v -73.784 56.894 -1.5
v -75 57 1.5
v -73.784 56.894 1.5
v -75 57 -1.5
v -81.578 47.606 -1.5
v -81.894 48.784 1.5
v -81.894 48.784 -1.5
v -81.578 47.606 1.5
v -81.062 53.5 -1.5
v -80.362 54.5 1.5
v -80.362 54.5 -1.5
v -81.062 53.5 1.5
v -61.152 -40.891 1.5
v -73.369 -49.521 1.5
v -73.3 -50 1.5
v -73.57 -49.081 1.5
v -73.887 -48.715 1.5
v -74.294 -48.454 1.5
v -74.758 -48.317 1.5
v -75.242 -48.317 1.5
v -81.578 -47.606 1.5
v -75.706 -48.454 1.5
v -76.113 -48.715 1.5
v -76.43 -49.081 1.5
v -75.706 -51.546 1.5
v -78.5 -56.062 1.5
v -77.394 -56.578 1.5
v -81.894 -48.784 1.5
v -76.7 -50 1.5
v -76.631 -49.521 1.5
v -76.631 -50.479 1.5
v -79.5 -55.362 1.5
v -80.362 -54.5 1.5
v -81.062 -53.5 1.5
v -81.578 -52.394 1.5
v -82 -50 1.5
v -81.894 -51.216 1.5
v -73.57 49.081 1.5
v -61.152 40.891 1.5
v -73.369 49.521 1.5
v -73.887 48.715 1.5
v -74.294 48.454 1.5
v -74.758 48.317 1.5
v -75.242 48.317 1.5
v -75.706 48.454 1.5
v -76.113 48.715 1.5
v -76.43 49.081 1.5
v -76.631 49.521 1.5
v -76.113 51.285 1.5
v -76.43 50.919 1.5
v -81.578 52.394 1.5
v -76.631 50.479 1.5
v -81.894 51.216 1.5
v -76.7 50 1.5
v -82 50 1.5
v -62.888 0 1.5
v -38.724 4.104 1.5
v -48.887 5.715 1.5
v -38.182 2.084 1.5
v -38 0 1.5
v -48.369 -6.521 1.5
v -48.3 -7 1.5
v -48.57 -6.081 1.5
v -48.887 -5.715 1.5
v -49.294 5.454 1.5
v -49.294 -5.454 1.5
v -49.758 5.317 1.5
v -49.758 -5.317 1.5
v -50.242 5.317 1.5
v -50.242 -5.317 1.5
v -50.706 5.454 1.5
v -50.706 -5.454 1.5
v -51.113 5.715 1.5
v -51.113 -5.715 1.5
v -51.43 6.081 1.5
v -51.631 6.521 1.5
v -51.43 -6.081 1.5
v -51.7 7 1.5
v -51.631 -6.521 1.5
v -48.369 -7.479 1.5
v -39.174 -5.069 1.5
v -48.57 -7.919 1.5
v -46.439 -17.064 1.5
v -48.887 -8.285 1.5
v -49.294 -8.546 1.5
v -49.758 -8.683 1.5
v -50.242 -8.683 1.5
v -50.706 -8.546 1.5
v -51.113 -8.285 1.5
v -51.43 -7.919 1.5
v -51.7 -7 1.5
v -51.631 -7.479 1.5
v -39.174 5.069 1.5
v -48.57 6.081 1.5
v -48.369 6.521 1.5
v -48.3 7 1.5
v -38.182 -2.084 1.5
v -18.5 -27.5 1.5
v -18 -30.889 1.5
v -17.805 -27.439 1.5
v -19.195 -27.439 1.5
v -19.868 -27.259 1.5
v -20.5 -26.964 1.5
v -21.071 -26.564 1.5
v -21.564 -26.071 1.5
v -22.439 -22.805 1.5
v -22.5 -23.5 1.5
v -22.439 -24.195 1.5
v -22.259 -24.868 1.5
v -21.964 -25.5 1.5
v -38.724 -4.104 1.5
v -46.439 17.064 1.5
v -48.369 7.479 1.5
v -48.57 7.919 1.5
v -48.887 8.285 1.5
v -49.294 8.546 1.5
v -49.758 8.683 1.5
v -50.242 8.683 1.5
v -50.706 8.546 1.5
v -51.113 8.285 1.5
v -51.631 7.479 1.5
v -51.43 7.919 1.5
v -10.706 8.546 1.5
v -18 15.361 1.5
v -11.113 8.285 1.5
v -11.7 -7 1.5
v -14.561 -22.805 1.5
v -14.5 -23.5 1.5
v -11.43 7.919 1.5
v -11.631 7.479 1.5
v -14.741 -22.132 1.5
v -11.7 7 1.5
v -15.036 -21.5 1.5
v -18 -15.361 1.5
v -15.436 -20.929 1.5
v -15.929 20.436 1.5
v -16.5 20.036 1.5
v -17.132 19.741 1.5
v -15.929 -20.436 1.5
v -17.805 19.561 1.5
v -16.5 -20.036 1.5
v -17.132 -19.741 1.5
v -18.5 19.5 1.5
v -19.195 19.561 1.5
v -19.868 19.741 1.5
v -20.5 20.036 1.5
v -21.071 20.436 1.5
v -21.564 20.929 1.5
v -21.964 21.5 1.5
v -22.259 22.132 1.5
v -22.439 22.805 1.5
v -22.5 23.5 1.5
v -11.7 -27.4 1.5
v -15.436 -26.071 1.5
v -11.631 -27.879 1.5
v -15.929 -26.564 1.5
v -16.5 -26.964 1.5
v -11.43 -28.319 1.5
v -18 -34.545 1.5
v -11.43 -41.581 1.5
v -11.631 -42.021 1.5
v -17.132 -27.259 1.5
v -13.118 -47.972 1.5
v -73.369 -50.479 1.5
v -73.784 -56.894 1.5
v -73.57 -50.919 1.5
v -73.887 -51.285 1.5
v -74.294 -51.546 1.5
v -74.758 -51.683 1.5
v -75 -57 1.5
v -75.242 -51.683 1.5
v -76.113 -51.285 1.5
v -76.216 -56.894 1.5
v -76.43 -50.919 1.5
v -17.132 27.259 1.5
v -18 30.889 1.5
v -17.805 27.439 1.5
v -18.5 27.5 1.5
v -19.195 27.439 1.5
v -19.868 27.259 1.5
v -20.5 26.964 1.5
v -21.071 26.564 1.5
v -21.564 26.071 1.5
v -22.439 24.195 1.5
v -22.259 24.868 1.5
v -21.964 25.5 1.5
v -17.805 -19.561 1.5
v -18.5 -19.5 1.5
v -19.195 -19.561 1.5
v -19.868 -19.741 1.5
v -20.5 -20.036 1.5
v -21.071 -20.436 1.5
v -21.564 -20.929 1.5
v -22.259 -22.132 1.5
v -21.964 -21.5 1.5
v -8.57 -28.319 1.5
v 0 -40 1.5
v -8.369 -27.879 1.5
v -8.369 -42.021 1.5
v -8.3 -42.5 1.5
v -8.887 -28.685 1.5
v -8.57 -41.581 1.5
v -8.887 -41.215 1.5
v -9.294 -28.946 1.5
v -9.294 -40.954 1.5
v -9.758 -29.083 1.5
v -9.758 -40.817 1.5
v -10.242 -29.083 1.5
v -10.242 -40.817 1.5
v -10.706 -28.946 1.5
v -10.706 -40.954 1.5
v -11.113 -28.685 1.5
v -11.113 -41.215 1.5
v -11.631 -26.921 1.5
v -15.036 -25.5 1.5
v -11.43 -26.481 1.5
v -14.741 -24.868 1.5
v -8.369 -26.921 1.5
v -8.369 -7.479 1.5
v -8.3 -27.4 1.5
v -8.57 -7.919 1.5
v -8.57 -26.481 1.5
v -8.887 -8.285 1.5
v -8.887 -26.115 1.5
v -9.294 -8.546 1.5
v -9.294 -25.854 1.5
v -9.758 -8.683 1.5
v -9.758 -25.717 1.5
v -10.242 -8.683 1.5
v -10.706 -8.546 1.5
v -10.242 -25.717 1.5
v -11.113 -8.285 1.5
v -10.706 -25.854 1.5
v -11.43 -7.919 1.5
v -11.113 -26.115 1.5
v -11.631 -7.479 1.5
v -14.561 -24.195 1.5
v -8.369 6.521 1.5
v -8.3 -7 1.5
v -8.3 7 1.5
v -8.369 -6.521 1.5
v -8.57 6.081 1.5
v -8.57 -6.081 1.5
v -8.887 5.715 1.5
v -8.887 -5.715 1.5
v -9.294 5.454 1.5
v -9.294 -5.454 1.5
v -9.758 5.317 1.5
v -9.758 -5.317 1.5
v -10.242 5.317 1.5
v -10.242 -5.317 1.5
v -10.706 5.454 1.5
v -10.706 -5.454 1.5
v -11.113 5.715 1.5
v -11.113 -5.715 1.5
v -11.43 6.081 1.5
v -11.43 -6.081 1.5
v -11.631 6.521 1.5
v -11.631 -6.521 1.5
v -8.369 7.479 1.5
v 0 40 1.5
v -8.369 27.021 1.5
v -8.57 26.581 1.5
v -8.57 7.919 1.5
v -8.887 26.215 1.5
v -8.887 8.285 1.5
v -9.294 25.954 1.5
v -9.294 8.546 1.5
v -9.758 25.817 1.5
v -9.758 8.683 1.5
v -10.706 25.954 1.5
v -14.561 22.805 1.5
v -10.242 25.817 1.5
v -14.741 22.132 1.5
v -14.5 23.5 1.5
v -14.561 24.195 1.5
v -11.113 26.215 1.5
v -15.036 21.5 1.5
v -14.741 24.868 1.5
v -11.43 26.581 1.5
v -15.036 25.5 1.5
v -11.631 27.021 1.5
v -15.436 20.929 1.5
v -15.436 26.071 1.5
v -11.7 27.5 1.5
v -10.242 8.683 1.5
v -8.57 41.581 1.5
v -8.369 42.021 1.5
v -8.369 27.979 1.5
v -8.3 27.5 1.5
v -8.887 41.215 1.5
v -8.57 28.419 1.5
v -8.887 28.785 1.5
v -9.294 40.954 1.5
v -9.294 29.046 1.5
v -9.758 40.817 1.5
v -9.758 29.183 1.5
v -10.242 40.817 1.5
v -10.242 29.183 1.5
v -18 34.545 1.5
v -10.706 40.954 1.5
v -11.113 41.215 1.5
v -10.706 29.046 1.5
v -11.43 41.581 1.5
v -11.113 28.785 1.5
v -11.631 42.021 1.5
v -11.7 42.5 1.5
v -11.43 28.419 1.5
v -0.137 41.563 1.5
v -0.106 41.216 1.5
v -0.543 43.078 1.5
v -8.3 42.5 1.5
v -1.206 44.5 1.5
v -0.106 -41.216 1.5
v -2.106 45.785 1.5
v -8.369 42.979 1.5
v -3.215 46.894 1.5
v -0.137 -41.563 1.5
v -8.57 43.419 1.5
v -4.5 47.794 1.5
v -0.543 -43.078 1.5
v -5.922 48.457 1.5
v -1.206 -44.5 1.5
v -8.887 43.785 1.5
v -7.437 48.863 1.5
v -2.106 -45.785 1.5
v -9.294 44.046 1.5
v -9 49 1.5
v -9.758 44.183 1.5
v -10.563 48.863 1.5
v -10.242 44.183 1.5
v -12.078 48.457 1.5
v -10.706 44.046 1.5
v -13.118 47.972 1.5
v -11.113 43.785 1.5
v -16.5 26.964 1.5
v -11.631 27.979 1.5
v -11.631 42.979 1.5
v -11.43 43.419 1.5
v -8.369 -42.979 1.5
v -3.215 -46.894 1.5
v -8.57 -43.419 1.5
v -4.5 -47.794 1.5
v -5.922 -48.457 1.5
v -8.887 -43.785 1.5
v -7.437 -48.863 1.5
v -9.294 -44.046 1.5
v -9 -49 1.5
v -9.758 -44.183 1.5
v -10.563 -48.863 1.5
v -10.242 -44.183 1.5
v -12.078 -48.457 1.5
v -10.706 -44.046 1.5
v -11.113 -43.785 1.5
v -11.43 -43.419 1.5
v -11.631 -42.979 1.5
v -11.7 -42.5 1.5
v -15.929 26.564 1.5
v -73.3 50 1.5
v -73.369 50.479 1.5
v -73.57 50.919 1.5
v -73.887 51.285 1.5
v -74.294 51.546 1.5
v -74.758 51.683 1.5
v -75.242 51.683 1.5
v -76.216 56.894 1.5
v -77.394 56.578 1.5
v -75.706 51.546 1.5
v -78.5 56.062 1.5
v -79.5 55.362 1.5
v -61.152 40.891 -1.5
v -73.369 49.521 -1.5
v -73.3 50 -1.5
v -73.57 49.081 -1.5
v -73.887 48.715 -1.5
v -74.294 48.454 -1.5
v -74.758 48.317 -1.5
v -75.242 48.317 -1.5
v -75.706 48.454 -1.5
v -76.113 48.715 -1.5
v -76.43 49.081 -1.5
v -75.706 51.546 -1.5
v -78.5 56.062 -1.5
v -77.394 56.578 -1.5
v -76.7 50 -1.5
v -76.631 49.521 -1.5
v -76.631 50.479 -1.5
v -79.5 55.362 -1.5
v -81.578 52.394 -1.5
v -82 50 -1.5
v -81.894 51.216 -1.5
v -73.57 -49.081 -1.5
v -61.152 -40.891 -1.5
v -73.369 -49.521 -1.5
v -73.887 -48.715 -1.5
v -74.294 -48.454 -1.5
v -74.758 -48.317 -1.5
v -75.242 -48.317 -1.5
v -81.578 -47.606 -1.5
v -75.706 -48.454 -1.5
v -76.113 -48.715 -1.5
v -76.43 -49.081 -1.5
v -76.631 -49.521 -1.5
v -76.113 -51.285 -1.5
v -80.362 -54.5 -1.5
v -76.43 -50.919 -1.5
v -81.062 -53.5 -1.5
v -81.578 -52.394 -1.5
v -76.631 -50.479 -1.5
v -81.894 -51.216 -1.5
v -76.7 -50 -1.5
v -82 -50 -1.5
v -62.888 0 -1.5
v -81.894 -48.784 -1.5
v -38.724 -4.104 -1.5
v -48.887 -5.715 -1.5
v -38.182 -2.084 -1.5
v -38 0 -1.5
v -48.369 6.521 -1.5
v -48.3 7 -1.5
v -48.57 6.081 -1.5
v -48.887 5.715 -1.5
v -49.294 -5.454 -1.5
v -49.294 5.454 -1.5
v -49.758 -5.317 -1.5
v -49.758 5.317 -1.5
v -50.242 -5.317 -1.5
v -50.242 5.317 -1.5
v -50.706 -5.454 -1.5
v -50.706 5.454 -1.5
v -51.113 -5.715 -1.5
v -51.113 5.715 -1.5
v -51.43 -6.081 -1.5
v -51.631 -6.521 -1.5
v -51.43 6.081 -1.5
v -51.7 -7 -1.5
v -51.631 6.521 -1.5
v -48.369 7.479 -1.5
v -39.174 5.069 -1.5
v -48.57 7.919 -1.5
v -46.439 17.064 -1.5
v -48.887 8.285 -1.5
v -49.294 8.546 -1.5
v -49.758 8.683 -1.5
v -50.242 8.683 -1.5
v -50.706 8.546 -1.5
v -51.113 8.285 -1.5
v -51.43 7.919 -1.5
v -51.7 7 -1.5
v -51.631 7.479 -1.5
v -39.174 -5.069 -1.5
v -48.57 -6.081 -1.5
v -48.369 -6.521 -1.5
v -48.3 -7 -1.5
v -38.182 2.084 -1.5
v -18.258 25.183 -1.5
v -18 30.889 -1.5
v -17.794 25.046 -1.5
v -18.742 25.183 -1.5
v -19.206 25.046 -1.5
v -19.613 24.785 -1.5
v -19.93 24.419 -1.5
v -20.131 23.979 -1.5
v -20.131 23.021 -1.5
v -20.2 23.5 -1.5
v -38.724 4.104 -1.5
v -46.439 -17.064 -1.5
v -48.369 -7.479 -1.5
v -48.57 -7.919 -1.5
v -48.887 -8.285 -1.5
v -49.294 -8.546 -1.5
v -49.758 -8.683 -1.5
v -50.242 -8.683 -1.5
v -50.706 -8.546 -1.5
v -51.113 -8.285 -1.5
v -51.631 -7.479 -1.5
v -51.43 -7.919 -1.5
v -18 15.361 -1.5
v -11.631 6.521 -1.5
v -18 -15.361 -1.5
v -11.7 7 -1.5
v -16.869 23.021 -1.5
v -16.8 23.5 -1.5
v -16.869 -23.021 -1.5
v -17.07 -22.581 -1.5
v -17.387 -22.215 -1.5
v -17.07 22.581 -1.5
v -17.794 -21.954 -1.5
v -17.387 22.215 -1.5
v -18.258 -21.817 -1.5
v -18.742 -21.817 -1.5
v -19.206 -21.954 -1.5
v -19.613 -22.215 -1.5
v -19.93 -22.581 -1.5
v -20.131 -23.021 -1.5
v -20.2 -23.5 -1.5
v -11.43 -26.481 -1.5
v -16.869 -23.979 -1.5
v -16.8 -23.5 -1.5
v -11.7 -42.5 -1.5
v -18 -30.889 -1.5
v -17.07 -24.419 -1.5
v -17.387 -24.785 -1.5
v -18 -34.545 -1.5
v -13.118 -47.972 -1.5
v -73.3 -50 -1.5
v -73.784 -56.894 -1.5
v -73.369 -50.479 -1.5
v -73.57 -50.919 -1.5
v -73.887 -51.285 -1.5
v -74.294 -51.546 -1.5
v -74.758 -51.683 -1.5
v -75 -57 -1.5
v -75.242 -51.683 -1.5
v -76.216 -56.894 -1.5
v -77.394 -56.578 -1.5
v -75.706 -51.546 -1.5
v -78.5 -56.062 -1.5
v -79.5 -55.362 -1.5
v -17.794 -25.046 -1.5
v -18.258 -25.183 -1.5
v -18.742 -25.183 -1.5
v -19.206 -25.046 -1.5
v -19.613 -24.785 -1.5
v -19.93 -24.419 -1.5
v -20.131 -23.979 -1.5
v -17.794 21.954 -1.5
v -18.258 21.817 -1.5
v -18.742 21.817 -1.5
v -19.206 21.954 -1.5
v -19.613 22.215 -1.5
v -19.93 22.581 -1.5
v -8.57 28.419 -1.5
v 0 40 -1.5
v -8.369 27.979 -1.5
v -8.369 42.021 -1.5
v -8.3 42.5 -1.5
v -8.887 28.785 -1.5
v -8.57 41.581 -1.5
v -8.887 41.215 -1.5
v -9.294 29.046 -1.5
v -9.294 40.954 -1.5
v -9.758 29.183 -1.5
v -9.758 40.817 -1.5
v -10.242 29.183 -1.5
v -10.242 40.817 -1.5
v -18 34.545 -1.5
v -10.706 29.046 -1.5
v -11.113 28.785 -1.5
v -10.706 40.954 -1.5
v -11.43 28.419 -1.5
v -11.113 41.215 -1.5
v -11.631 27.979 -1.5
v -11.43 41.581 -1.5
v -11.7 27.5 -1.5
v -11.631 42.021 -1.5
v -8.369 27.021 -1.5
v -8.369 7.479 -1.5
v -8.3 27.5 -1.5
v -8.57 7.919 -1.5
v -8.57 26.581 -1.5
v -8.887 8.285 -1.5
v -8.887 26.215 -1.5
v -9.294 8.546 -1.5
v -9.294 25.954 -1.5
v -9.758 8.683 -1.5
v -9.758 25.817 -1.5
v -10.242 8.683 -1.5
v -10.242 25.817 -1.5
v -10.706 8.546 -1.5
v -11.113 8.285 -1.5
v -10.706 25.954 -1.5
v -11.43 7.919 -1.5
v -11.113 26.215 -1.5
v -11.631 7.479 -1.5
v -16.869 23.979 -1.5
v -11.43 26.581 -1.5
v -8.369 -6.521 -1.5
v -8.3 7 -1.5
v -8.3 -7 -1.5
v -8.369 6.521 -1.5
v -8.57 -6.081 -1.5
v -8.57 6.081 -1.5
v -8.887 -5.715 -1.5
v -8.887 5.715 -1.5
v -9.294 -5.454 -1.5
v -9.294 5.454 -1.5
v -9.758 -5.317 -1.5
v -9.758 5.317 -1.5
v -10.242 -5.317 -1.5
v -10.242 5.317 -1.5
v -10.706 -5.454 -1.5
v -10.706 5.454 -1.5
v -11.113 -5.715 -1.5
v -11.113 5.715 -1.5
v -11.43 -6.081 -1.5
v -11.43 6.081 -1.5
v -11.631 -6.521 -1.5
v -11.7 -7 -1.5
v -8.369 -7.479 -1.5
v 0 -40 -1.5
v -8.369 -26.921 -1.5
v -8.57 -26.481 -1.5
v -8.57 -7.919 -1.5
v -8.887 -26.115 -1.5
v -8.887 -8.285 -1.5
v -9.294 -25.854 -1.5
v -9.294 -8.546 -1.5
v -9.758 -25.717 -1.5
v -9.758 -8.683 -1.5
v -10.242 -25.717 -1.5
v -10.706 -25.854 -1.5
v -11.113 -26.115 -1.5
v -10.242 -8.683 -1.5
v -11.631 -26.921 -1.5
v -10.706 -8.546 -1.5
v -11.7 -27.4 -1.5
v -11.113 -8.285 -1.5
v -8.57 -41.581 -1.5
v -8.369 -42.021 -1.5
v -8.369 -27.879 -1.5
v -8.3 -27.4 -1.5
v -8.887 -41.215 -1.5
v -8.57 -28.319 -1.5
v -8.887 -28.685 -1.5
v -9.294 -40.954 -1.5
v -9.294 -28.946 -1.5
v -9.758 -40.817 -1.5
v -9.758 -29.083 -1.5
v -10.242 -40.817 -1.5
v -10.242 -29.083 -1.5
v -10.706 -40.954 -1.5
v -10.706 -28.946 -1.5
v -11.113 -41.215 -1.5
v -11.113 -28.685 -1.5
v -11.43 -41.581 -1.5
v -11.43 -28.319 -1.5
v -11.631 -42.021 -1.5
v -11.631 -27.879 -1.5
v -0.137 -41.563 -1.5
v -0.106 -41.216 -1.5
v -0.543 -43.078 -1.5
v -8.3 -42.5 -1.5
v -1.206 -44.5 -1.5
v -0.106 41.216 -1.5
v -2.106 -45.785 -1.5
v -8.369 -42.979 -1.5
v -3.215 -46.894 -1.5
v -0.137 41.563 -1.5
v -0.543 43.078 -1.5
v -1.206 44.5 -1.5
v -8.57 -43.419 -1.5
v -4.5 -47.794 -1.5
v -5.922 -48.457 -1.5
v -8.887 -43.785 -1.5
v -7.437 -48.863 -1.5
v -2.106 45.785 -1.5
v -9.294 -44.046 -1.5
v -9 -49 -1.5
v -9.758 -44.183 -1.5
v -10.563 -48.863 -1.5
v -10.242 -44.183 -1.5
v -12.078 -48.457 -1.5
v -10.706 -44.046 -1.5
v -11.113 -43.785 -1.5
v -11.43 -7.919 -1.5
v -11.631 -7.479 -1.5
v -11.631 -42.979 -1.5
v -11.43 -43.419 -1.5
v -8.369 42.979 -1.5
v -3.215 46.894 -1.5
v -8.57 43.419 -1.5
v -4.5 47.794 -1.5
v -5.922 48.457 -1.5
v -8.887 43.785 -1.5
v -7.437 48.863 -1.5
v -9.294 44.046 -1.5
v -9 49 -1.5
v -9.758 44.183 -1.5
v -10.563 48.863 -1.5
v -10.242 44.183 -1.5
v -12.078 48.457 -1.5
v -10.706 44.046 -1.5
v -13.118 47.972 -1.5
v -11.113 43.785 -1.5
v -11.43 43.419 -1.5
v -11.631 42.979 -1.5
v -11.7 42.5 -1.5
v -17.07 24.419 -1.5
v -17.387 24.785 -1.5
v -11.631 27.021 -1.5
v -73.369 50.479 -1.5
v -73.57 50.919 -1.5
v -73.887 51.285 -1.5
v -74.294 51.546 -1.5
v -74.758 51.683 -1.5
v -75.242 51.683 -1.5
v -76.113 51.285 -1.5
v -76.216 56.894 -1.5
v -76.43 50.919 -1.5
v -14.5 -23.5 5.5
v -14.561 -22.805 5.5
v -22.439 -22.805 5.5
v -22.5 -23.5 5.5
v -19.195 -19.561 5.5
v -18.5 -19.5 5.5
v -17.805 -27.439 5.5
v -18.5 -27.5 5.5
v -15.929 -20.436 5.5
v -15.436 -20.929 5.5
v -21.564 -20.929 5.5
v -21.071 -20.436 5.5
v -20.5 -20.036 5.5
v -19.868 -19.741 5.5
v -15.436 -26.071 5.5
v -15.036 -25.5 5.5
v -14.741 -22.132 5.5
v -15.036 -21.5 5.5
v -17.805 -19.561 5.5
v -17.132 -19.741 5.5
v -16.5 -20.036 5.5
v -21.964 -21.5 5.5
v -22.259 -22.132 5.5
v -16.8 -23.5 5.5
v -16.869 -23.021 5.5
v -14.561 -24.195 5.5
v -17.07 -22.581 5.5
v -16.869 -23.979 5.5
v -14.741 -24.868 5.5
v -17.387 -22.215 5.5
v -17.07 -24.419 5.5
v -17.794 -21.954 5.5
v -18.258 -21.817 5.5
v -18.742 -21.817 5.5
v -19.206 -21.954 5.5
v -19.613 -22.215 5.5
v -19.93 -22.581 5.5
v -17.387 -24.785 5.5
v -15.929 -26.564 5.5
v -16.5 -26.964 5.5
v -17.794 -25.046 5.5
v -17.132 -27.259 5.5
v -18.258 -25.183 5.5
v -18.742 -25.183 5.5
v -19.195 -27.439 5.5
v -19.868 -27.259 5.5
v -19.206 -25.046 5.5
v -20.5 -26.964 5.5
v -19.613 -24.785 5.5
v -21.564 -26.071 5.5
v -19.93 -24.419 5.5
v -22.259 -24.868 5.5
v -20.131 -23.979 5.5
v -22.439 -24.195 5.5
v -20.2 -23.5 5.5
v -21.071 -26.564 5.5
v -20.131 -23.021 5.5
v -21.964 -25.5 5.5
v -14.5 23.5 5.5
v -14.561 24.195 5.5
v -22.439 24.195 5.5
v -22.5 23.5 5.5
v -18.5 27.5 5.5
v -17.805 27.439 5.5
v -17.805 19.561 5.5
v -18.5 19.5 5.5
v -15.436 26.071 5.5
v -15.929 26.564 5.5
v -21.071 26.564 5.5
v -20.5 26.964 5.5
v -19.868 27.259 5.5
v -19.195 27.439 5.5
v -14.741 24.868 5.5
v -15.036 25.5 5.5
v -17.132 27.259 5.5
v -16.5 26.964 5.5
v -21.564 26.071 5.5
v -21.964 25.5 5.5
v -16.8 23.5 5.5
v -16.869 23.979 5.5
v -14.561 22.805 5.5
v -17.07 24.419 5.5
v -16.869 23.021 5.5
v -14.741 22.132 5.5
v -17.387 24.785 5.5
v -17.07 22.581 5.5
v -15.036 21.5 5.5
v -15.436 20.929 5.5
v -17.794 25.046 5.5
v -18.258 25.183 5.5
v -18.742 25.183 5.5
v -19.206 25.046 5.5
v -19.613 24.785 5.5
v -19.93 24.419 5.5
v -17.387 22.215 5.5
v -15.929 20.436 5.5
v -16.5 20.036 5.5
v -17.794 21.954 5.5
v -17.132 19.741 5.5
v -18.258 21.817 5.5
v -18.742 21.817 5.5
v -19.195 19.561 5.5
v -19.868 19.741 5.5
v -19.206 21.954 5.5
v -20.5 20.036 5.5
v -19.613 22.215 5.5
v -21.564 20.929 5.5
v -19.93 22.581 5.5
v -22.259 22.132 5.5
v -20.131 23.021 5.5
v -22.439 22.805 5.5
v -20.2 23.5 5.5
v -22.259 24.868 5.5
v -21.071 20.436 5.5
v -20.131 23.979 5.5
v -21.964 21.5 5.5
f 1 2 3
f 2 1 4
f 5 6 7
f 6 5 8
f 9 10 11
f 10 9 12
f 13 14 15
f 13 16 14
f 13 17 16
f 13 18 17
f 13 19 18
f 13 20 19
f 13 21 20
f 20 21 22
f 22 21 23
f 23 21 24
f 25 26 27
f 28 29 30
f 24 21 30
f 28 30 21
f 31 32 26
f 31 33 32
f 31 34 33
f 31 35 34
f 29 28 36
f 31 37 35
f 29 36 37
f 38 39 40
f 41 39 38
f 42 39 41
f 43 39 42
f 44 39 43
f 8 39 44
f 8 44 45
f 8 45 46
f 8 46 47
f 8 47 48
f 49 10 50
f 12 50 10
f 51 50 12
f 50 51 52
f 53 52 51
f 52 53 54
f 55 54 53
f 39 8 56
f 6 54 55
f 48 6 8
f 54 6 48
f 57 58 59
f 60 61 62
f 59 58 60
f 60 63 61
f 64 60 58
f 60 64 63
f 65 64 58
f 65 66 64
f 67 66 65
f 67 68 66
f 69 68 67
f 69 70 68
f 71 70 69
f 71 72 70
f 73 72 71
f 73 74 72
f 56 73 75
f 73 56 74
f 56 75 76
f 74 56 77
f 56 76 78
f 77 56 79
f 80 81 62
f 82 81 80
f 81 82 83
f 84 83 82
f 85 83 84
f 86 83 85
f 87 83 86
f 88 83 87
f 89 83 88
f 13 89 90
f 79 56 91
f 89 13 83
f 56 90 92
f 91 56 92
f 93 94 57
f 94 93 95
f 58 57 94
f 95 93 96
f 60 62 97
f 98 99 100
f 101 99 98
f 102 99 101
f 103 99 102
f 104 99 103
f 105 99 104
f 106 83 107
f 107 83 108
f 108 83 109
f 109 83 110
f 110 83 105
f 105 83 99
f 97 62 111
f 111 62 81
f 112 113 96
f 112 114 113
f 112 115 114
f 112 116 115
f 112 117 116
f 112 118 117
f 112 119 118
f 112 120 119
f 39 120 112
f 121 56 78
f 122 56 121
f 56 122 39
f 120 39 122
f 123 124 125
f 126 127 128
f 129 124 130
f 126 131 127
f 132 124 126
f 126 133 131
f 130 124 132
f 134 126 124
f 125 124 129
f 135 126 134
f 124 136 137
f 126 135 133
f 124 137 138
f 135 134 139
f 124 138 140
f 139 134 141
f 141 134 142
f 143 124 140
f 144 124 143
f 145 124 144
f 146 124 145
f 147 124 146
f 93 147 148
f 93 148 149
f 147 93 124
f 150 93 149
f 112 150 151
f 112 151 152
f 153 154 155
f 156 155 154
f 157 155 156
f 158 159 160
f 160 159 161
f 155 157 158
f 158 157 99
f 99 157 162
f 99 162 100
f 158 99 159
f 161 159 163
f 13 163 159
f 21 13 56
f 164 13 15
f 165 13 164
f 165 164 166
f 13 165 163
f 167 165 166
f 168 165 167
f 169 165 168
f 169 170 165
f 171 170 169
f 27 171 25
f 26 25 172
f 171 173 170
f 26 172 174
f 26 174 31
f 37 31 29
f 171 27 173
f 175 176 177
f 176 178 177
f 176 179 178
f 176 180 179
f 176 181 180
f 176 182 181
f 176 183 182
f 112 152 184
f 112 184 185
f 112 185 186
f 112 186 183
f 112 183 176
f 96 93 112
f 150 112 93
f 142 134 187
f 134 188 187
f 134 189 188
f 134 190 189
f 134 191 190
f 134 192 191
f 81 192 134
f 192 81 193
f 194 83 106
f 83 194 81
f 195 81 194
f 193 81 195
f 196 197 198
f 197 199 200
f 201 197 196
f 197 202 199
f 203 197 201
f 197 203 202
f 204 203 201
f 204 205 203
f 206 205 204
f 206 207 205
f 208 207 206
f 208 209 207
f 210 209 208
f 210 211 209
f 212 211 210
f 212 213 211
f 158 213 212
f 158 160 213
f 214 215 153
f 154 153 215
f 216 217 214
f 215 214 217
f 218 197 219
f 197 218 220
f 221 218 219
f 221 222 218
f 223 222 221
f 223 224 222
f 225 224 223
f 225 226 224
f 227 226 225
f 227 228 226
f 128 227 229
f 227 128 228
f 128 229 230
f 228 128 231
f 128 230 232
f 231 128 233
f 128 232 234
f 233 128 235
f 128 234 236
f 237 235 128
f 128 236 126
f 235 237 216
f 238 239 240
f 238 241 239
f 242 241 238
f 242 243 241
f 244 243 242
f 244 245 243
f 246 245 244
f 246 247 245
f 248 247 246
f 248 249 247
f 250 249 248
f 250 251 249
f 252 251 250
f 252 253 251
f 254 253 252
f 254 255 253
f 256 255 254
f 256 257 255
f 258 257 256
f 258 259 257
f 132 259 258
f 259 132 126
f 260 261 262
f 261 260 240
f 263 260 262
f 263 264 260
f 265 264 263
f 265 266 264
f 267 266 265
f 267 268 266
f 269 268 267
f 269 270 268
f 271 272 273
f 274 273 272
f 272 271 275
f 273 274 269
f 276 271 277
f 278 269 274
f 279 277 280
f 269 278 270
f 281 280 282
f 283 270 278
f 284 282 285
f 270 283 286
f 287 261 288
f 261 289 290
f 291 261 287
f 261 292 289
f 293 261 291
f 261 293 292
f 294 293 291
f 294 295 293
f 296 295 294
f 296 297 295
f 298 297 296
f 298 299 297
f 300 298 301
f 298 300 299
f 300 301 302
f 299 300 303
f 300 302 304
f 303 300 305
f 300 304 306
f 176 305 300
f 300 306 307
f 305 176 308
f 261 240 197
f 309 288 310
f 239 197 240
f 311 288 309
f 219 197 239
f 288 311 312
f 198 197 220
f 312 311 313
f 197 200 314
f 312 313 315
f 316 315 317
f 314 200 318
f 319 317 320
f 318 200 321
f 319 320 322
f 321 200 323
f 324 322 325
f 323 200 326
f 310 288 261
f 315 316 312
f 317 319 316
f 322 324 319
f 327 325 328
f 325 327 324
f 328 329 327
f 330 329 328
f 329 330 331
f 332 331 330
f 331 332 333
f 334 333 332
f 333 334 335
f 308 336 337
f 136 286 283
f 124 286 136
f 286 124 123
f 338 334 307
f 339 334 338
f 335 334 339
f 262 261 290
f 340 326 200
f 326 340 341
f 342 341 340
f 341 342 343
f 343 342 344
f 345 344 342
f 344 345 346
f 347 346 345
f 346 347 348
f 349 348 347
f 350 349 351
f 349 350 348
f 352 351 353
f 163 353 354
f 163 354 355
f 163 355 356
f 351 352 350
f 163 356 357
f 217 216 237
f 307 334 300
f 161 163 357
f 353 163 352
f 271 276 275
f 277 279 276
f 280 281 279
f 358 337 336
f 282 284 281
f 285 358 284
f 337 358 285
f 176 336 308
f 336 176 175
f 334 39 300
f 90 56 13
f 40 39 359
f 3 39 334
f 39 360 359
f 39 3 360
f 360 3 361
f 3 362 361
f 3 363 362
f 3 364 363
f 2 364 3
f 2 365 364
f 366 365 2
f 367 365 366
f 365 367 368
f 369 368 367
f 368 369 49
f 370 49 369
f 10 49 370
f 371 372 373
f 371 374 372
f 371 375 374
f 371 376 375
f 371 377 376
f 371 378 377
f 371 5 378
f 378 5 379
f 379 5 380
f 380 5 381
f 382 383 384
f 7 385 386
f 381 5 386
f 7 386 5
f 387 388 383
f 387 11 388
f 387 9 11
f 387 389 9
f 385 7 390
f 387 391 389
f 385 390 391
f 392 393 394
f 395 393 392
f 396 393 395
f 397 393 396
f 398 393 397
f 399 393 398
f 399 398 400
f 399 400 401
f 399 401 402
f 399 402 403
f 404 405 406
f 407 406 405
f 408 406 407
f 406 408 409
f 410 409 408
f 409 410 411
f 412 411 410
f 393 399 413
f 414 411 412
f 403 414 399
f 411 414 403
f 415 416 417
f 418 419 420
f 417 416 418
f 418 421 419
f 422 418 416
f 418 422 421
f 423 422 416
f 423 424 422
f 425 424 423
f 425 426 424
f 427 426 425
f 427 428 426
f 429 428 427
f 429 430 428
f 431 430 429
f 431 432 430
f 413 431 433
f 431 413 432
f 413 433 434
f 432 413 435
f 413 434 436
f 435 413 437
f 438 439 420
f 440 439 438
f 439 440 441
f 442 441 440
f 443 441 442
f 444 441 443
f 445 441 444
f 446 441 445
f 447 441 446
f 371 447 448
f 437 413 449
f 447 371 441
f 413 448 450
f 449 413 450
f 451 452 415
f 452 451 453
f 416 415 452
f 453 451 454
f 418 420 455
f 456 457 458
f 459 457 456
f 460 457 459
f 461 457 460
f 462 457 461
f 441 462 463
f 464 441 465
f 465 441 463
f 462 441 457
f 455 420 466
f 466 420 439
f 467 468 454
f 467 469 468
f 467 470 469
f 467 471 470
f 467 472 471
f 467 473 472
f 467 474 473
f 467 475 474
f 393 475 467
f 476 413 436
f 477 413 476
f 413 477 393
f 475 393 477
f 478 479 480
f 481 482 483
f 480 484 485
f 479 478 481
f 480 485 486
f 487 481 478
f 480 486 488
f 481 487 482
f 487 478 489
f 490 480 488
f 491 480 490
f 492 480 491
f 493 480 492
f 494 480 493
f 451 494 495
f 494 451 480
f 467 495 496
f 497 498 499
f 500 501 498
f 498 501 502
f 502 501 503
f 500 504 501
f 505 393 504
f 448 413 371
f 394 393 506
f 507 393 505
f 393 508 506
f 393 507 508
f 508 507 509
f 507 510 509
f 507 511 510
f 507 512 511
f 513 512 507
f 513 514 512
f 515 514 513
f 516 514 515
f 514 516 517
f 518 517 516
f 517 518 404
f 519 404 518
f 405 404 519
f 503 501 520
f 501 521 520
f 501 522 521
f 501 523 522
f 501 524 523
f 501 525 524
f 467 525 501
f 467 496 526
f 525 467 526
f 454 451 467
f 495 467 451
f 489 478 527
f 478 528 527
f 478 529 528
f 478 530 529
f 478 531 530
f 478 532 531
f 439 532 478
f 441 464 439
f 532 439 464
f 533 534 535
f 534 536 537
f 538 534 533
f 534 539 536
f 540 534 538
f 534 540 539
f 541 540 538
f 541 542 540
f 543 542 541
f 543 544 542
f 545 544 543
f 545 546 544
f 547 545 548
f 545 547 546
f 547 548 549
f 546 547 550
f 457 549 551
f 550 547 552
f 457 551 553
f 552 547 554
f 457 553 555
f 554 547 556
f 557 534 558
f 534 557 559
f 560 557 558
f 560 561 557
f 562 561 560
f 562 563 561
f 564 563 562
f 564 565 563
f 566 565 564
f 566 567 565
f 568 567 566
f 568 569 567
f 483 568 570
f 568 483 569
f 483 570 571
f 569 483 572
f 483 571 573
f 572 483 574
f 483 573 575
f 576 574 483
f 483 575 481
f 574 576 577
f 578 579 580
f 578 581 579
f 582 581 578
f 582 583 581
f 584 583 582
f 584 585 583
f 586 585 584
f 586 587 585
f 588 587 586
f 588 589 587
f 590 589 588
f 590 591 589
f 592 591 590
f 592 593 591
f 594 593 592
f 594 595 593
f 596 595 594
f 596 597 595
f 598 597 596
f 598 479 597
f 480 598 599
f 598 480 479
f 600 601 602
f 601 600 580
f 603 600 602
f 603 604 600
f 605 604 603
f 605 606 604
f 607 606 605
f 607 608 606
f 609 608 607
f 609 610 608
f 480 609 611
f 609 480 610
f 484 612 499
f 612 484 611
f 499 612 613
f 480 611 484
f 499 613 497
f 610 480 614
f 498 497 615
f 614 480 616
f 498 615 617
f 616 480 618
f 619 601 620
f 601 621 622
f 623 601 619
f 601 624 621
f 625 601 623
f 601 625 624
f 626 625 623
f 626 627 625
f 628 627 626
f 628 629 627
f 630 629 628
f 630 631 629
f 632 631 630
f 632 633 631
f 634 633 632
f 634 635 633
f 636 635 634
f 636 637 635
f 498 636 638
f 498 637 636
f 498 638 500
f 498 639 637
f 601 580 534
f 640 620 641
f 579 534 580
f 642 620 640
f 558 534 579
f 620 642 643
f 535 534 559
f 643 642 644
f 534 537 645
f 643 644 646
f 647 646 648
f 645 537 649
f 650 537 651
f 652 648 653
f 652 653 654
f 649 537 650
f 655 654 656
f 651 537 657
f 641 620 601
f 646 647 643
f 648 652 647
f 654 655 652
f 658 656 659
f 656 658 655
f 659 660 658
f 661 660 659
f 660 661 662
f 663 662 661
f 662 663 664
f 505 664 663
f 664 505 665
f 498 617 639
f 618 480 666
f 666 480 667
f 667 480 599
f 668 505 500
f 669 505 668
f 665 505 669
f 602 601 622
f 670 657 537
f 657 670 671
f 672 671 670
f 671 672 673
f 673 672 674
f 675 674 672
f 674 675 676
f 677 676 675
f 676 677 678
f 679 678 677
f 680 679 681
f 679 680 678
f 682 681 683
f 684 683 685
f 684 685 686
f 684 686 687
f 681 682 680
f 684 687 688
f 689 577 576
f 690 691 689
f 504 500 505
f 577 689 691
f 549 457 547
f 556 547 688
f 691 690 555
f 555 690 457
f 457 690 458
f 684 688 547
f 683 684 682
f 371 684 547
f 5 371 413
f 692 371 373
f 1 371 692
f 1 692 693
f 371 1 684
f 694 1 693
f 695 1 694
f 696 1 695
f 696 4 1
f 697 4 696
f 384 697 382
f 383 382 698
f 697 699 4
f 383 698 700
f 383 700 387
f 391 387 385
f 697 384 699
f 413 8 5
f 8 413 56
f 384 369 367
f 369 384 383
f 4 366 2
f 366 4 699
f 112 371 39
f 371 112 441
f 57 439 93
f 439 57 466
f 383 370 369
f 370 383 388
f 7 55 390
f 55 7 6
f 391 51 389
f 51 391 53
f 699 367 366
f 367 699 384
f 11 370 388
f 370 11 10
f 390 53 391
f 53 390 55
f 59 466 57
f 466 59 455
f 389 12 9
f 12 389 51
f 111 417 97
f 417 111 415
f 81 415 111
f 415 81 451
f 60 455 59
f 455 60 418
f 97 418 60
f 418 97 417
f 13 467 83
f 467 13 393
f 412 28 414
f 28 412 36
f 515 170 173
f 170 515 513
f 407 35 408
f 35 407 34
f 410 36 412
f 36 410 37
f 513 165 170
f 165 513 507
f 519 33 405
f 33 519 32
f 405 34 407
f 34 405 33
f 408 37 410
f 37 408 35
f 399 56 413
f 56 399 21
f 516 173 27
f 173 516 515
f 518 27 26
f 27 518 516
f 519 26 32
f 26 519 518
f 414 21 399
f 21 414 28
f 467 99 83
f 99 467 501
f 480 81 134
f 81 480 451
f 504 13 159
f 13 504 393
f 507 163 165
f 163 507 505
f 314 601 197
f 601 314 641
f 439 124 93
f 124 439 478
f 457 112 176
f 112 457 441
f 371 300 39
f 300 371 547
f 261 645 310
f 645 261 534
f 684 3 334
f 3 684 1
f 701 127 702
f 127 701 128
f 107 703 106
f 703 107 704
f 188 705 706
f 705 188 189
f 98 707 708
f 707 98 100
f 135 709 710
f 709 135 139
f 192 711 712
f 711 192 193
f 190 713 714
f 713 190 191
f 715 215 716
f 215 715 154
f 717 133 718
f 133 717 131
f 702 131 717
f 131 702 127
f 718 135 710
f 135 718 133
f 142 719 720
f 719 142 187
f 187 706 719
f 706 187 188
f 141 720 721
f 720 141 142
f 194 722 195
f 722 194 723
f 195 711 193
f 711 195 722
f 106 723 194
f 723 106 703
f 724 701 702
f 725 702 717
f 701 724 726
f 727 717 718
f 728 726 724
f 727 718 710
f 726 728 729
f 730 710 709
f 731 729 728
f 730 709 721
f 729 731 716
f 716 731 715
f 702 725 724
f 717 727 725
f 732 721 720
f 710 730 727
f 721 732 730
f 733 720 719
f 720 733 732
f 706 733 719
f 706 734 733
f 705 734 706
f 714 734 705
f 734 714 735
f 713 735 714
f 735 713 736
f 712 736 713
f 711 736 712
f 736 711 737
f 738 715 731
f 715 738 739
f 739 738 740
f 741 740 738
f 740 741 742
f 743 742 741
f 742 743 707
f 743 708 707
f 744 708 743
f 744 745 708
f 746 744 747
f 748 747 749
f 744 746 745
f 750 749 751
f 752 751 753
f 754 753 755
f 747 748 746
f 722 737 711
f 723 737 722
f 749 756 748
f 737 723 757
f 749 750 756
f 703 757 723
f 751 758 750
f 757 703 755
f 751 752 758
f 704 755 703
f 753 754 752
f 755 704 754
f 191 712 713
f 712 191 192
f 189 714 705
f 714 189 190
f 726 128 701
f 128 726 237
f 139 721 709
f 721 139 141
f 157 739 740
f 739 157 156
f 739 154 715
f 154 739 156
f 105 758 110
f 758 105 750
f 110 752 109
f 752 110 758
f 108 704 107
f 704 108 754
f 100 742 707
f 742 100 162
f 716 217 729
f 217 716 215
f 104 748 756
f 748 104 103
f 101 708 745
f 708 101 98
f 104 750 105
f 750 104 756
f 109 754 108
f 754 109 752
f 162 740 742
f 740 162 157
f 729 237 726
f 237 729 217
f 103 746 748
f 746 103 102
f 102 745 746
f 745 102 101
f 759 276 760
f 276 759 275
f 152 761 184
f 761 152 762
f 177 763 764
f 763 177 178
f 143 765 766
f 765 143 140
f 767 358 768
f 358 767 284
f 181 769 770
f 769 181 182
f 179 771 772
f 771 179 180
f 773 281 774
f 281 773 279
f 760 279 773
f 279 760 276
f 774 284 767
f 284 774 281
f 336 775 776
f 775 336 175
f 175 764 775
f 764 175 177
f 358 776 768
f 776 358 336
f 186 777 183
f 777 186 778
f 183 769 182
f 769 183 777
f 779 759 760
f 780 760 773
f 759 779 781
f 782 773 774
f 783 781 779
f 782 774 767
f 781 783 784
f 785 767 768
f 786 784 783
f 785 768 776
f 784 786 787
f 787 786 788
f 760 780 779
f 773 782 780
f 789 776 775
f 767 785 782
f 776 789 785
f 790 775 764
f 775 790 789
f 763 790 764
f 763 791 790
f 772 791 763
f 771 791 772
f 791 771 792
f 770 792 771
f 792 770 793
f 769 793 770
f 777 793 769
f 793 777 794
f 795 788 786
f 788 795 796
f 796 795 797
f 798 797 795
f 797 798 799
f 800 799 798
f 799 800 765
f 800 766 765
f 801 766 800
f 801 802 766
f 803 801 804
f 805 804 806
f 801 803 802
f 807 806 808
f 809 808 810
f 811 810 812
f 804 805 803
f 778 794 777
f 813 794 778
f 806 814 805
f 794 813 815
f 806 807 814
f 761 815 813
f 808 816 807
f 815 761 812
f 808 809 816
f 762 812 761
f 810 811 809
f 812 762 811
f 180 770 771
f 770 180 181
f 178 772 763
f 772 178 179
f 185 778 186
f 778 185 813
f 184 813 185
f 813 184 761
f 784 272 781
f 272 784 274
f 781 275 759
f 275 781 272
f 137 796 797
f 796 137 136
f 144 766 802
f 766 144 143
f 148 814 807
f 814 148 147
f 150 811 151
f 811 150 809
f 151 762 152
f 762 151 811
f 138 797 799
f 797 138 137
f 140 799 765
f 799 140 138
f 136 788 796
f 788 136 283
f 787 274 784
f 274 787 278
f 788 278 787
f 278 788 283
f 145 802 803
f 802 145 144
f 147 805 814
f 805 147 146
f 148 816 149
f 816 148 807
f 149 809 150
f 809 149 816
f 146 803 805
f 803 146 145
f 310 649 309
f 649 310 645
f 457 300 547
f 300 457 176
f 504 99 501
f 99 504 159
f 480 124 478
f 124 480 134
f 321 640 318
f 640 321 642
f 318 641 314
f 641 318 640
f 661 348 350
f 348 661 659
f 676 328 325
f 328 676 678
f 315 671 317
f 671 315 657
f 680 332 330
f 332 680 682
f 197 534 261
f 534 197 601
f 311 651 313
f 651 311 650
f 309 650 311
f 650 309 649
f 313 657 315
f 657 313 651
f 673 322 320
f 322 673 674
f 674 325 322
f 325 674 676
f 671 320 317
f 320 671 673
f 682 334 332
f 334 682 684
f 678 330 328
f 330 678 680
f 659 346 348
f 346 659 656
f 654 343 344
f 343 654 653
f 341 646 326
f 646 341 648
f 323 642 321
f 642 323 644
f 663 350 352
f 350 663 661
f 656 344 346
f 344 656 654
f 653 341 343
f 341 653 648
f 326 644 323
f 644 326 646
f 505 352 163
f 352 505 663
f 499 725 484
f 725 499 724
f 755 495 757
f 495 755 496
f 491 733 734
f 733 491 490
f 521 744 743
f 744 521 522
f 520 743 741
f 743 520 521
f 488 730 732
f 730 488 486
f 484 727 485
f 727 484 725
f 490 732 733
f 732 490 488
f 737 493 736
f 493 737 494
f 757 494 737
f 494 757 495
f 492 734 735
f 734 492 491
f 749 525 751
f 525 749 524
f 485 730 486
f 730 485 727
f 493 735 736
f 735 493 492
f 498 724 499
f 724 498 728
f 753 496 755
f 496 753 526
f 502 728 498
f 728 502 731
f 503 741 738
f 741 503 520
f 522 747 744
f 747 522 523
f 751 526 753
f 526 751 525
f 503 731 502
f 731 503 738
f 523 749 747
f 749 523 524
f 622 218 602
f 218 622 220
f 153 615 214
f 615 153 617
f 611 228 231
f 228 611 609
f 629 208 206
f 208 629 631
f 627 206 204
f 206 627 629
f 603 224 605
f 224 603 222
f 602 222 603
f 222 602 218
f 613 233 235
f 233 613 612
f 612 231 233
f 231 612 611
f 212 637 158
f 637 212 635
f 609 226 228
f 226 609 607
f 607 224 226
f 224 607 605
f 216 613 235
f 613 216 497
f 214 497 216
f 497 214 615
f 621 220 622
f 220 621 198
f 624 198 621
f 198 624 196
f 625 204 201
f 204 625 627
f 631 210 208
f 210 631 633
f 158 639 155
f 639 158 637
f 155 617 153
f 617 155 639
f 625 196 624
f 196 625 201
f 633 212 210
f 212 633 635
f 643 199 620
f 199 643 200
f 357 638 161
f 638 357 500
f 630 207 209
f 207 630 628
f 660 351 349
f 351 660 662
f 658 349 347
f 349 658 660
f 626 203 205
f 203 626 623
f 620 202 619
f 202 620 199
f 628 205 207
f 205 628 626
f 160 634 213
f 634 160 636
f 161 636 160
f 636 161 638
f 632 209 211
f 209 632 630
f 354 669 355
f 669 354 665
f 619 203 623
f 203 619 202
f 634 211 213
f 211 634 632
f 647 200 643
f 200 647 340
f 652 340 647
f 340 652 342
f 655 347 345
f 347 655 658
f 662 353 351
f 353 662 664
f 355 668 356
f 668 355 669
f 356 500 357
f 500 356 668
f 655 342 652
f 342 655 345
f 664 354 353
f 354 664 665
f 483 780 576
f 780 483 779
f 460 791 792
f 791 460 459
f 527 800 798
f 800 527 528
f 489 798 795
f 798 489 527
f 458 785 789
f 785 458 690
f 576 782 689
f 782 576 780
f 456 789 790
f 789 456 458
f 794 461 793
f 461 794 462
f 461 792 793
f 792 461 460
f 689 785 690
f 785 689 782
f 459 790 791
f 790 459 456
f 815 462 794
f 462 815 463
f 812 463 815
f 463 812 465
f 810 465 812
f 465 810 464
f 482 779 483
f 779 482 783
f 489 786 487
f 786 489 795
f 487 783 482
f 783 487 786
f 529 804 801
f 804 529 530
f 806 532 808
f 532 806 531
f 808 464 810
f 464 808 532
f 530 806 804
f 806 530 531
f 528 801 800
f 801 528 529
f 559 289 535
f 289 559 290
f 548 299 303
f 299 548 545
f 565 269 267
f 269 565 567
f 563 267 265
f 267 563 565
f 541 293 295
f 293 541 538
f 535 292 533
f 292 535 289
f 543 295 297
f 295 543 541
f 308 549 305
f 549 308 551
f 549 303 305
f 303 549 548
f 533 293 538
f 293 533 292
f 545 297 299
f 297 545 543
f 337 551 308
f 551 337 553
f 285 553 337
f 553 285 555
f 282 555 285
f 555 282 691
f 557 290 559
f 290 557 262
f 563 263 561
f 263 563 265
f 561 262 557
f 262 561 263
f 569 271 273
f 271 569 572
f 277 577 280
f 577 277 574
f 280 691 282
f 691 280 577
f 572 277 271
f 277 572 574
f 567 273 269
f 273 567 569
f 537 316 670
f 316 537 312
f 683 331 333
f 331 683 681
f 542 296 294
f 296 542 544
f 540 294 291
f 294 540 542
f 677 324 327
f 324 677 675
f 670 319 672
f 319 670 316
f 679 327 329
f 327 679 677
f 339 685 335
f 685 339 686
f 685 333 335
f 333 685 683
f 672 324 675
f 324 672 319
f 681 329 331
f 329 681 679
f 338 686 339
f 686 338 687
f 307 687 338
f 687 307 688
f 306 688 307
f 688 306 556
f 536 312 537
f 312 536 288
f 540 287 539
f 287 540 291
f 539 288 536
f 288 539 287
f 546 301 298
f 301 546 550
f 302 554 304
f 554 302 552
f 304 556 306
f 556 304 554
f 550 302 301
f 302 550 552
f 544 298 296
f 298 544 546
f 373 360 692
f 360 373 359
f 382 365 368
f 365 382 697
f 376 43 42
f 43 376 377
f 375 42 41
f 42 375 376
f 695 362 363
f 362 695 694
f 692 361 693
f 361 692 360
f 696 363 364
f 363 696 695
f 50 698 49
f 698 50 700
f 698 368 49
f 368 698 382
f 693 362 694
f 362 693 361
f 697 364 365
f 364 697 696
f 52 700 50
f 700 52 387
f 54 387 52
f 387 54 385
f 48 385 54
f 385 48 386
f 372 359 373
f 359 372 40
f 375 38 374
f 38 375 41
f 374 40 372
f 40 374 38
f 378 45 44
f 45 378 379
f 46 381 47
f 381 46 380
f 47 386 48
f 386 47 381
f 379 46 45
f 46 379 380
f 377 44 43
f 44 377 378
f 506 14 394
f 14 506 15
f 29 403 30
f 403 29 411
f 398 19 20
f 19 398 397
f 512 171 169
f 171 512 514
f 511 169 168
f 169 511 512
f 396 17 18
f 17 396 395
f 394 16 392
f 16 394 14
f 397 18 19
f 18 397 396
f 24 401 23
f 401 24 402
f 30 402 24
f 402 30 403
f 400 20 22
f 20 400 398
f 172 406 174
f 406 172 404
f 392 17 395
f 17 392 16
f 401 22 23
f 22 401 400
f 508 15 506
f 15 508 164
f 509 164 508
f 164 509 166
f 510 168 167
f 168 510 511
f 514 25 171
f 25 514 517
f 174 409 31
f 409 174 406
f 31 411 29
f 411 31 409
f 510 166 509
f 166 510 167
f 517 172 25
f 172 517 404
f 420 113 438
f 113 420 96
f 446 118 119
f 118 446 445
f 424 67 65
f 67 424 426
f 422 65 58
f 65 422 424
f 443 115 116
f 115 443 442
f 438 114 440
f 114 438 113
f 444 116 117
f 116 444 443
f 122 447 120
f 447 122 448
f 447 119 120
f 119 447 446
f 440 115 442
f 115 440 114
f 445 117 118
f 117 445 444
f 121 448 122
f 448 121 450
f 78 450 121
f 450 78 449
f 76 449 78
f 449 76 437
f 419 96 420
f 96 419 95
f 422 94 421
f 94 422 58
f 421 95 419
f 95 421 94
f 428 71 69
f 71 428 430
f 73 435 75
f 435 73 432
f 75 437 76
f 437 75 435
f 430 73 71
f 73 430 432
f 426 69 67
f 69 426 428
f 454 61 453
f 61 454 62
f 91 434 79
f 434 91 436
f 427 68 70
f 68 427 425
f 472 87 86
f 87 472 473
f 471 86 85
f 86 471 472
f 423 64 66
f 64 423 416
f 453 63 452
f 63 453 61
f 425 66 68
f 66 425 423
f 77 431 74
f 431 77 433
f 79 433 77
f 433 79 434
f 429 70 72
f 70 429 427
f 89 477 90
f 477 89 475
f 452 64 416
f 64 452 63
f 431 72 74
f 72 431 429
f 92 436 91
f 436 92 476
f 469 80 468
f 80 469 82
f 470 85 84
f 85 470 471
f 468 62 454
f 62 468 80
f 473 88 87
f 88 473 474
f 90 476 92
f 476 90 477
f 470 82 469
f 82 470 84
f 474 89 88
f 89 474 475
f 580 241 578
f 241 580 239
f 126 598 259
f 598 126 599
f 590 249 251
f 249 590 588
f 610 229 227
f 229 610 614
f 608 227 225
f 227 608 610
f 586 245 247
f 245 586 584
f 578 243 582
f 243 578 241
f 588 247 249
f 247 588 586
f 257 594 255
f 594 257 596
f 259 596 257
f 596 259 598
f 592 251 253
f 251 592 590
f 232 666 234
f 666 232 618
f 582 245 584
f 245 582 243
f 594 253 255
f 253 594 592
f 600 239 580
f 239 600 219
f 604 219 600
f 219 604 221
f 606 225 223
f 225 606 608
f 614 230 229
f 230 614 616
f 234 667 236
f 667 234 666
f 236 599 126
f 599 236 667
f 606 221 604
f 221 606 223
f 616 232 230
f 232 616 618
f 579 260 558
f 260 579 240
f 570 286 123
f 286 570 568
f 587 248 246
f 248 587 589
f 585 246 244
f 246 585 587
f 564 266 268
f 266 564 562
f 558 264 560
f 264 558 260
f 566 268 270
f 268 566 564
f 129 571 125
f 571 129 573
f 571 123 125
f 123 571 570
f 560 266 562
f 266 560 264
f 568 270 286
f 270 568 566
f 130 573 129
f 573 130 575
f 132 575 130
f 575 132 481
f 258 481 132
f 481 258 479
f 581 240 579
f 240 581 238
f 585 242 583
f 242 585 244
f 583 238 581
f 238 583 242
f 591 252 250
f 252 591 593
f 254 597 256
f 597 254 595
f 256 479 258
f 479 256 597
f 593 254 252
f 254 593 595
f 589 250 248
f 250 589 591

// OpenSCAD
$fa=10; $fs=0.5;

difference(){
    
    union(){
        hull(){
            translate([-75,50,0]) cylinder(h=3, r=7, center=true);
            translate([-50,0, 0]) cylinder(h=3, r=12, center=true);
        }
        
        hull(){
            translate([-75,-50,0]) cylinder(h=3, r=7, center=true);
            translate([-50,0, 0]) cylinder(h=3, r=12, center=true);
        }
        
        hull(){
            translate([-45,-10,0]) cylinder(h=3, r=7, center=true);
            translate([-9,-27.5,0]) cylinder(h=3, r=7, center=true);
        }
        
        hull(){
            translate([-75,-50,0]) cylinder(h=3, r=7, center=true);
            translate([-7,-40, 0]) cylinder(h=3, r=7, center=true);
        }
        
        hull(){
            translate([-45,10,0]) cylinder(h=3, r=7, center=true);
            translate([-9,27.5,0]) cylinder(h=3, r=7, center=true);
        }
        
        hull(){
            translate([-75,50,0]) cylinder(h=3, r=7, center=true);
            translate([-7,40, 0]) cylinder(h=3, r=7, center=true);
        }
        
       
        translate([-18.5, -23.5, 3.5]) cylinder(h=4, r=4, center=true); //упор под винт ремня
        translate([-18.5, 23.5, 3.5]) cylinder(h=4, r=4, center=true); //упор под винт ремня
        
        hull(){
            translate([-9,40,0]) cylinder(h=3, r=9, center=true);
            translate([-9,-40,0]) cylinder(h=3, r=9, center=true);
            }
      
    }
    
    union(){
        translate([-18.5, -23.5, 4]) cylinder(h=11.01, r=1.7, center=true); //под винт ремня
        
        translate([-10, -27.4, 4]) cylinder(h=11.01, r=1.7, center=true); // под прижим lm6uu
        translate([10, -27.5, 4]) cylinder(h=11.01, r=1.7, center=true);
        translate([-10, -42.5, 4]) cylinder(h=11.01, r=1.7, center=true);
        translate([10, -42.5, 4]) cylinder(h=11.01, r=1.7, center=true);
        
        translate([-18.5, 23.5, 4]) cylinder(h=11.01, r=1.7, center=true); //под винт ремня
        
        translate([-10, 27.5, 4]) cylinder(h=11.01, r=1.7, center=true); // под прижим lm6uu
        translate([10, 27.5, 4]) cylinder(h=11.01, r=1.7, center=true);
        translate([-10, 42.5, 4]) cylinder(h=11.01, r=1.7, center=true);
        translate([10, 42.5, 4]) cylinder(h=11.01, r=1.7, center=true);
        
        translate([-75,50,0]) cylinder(h=3.01, r=1.7, center=true); //под столик
        translate([-75,-50,0]) cylinder(h=3.01, r=1.7, center=true);
        
        translate([-50,7,0]) cylinder(h=3.01, r=1.7, center=true); //под планку
        translate([-50,-7,0]) cylinder(h=3.01, r=1.7, center=true);
        translate([-10,-7,0]) cylinder(h=3.01, r=1.7, center=true);
        translate([-10,7,0]) cylinder(h=3.01, r=1.7, center=true);
    }
}
